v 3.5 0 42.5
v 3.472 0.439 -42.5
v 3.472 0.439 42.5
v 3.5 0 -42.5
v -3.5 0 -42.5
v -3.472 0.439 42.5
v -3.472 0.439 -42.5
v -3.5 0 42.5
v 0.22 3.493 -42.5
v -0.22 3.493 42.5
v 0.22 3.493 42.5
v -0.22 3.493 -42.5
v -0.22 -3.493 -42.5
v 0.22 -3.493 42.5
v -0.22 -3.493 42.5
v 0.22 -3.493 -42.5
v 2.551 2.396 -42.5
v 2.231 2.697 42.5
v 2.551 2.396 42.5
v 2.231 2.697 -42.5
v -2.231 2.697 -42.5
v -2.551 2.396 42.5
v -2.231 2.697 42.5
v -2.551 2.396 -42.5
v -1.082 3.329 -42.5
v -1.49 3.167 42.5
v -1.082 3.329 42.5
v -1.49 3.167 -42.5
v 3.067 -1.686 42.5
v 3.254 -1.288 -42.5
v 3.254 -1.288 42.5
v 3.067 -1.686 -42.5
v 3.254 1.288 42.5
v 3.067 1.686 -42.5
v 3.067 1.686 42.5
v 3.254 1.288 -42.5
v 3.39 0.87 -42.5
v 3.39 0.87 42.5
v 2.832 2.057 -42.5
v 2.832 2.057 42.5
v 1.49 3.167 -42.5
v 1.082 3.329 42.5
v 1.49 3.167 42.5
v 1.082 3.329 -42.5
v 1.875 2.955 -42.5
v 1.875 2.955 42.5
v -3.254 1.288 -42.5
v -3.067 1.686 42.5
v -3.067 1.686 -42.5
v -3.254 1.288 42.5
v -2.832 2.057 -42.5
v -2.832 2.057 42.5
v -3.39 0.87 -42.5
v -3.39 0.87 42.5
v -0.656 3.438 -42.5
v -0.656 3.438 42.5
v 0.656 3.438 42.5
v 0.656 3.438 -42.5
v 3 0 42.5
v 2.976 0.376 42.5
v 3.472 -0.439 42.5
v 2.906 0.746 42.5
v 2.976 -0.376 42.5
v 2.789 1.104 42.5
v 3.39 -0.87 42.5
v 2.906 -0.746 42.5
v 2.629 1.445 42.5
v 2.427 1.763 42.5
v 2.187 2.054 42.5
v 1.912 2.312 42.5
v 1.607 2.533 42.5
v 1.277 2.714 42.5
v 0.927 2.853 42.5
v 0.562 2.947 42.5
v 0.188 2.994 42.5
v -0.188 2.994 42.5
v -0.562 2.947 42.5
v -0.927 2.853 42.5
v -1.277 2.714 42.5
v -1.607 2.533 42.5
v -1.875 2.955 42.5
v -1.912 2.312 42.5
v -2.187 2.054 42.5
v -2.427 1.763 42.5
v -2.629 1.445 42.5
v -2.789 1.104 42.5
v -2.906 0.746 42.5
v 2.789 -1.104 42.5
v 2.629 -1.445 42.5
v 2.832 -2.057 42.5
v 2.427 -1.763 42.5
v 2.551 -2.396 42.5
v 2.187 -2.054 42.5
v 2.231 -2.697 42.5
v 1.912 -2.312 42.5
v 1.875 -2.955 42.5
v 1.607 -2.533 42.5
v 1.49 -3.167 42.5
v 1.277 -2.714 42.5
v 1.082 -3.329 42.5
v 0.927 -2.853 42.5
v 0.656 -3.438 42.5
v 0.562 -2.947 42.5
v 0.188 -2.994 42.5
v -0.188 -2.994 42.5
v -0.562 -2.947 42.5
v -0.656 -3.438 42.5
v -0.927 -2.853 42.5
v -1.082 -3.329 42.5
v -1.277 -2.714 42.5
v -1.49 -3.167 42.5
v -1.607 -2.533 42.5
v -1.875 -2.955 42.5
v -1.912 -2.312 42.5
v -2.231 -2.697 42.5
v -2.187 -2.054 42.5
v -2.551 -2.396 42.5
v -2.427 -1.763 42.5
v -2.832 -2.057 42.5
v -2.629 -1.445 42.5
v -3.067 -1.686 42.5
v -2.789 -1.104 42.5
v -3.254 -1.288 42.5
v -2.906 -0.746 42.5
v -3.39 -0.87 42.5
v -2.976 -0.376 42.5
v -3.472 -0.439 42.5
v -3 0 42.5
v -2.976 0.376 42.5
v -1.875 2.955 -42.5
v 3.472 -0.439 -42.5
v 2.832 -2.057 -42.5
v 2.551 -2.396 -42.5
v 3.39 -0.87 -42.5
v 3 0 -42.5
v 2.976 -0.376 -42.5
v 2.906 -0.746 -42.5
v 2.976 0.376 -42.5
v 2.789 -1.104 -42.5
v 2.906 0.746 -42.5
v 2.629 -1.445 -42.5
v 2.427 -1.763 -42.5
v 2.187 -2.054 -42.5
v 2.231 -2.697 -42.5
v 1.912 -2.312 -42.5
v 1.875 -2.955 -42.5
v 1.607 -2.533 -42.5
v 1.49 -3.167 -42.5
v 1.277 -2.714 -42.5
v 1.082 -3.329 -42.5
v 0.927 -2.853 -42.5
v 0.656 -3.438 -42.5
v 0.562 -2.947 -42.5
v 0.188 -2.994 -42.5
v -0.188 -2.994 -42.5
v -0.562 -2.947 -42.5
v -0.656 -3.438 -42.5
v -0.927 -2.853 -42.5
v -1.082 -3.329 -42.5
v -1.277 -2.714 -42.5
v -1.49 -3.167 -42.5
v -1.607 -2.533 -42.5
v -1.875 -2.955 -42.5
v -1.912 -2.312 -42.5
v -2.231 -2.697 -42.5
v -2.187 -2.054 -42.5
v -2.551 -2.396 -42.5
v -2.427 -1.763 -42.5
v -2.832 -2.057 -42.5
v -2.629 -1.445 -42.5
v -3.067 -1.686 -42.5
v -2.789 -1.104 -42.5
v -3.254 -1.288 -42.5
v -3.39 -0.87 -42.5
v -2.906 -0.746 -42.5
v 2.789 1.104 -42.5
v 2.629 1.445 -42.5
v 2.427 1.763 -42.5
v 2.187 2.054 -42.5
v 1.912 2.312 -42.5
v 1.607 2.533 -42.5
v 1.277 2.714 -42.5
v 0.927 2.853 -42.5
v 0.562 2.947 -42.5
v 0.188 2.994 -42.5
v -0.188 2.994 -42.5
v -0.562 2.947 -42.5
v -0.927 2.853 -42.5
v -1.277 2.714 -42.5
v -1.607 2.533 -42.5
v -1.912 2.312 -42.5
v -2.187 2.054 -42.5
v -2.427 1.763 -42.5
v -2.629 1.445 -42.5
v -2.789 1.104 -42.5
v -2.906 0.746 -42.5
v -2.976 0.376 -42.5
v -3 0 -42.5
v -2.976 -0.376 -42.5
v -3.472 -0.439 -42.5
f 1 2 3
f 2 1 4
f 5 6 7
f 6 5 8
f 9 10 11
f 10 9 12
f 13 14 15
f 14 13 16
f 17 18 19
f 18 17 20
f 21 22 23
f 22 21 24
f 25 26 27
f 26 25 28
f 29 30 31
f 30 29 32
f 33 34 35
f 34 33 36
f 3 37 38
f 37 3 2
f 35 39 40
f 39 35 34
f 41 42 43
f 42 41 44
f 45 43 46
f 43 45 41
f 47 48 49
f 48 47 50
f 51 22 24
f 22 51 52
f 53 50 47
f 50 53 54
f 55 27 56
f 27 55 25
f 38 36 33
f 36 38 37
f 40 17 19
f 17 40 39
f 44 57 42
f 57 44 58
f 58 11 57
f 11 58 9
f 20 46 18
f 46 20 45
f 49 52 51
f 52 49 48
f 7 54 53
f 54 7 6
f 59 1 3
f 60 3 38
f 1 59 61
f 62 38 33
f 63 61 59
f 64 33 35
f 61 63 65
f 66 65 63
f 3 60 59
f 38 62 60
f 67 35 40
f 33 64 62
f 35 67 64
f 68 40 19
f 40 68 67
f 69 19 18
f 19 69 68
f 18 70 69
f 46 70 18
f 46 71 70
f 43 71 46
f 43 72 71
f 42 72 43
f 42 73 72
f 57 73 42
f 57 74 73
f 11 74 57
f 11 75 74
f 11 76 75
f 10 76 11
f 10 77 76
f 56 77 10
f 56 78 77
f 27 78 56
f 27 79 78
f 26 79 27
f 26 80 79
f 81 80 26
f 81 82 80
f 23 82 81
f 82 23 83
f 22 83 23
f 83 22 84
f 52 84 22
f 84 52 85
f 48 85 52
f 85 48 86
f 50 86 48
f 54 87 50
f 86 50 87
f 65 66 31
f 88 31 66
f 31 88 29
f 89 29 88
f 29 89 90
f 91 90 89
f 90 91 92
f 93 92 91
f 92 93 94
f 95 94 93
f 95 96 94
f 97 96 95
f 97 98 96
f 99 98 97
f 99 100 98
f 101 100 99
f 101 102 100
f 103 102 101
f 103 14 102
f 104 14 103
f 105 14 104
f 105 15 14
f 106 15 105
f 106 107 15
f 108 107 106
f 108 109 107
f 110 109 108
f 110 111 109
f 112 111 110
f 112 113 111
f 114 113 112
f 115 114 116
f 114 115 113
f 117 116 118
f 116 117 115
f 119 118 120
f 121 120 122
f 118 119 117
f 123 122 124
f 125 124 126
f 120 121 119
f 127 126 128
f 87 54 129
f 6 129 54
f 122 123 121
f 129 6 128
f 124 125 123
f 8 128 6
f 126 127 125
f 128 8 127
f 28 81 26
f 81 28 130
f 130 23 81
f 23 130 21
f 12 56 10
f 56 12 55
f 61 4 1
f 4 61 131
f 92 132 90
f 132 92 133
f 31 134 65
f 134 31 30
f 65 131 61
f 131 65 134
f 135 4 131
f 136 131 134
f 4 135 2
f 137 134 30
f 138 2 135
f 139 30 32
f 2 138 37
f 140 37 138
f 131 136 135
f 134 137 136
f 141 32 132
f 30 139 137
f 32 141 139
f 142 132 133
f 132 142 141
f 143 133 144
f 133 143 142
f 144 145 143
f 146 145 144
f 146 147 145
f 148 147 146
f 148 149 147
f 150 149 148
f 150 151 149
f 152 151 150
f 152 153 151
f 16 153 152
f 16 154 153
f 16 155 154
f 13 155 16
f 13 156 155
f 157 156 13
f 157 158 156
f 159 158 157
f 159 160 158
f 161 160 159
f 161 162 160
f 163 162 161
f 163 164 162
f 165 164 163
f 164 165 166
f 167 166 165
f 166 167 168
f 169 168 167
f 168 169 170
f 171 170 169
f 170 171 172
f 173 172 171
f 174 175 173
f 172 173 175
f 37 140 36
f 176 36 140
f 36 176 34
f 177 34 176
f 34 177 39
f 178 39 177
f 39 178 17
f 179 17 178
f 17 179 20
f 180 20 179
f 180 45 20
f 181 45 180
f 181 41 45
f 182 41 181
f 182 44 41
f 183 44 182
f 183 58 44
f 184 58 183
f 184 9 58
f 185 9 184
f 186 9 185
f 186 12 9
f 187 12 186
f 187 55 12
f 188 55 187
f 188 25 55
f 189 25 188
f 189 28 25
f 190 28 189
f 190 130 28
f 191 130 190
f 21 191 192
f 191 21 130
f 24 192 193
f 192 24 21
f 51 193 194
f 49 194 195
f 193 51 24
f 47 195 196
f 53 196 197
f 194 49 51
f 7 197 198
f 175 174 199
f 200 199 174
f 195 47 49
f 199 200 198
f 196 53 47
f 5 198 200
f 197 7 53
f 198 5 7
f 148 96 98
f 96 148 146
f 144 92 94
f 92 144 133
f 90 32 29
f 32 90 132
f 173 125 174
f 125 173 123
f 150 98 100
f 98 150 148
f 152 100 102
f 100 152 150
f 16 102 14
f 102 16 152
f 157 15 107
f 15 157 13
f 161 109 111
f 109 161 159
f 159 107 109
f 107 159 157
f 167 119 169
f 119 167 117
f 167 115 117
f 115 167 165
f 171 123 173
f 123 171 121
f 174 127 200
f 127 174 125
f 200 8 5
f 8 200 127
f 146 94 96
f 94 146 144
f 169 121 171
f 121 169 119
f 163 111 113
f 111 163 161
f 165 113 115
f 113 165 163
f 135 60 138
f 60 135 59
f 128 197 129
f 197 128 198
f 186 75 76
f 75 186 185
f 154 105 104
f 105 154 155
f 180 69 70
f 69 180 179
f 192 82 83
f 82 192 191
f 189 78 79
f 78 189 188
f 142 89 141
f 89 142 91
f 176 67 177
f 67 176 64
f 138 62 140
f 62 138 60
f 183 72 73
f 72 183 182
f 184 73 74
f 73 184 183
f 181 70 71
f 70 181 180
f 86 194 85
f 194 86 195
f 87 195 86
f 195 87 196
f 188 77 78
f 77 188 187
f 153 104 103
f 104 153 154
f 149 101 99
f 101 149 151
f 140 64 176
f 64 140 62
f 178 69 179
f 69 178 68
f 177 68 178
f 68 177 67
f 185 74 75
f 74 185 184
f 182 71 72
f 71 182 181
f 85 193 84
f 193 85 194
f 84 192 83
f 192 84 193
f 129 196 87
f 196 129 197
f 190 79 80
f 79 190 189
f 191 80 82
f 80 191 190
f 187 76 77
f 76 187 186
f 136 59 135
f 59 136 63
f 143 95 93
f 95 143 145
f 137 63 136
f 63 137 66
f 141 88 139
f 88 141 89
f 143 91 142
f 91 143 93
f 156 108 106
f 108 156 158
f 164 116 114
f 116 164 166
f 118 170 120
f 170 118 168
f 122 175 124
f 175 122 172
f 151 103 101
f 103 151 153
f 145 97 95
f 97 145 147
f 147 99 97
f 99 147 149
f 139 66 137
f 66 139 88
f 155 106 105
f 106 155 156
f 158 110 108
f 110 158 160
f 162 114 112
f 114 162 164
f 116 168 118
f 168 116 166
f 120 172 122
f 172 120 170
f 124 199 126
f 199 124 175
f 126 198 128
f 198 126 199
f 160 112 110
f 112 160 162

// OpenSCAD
$fn = 50;


difference() {
	union() {
		translate(v = [0, 0, -42.5000000000]) {
			cylinder(h = 85, r = 3.5000000000);
		}
	}
	union() {
		translate(v = [0, 0, -100.0000000000]) {
			cylinder(h = 200, r = 3.0000000000);
		}
	}
}
